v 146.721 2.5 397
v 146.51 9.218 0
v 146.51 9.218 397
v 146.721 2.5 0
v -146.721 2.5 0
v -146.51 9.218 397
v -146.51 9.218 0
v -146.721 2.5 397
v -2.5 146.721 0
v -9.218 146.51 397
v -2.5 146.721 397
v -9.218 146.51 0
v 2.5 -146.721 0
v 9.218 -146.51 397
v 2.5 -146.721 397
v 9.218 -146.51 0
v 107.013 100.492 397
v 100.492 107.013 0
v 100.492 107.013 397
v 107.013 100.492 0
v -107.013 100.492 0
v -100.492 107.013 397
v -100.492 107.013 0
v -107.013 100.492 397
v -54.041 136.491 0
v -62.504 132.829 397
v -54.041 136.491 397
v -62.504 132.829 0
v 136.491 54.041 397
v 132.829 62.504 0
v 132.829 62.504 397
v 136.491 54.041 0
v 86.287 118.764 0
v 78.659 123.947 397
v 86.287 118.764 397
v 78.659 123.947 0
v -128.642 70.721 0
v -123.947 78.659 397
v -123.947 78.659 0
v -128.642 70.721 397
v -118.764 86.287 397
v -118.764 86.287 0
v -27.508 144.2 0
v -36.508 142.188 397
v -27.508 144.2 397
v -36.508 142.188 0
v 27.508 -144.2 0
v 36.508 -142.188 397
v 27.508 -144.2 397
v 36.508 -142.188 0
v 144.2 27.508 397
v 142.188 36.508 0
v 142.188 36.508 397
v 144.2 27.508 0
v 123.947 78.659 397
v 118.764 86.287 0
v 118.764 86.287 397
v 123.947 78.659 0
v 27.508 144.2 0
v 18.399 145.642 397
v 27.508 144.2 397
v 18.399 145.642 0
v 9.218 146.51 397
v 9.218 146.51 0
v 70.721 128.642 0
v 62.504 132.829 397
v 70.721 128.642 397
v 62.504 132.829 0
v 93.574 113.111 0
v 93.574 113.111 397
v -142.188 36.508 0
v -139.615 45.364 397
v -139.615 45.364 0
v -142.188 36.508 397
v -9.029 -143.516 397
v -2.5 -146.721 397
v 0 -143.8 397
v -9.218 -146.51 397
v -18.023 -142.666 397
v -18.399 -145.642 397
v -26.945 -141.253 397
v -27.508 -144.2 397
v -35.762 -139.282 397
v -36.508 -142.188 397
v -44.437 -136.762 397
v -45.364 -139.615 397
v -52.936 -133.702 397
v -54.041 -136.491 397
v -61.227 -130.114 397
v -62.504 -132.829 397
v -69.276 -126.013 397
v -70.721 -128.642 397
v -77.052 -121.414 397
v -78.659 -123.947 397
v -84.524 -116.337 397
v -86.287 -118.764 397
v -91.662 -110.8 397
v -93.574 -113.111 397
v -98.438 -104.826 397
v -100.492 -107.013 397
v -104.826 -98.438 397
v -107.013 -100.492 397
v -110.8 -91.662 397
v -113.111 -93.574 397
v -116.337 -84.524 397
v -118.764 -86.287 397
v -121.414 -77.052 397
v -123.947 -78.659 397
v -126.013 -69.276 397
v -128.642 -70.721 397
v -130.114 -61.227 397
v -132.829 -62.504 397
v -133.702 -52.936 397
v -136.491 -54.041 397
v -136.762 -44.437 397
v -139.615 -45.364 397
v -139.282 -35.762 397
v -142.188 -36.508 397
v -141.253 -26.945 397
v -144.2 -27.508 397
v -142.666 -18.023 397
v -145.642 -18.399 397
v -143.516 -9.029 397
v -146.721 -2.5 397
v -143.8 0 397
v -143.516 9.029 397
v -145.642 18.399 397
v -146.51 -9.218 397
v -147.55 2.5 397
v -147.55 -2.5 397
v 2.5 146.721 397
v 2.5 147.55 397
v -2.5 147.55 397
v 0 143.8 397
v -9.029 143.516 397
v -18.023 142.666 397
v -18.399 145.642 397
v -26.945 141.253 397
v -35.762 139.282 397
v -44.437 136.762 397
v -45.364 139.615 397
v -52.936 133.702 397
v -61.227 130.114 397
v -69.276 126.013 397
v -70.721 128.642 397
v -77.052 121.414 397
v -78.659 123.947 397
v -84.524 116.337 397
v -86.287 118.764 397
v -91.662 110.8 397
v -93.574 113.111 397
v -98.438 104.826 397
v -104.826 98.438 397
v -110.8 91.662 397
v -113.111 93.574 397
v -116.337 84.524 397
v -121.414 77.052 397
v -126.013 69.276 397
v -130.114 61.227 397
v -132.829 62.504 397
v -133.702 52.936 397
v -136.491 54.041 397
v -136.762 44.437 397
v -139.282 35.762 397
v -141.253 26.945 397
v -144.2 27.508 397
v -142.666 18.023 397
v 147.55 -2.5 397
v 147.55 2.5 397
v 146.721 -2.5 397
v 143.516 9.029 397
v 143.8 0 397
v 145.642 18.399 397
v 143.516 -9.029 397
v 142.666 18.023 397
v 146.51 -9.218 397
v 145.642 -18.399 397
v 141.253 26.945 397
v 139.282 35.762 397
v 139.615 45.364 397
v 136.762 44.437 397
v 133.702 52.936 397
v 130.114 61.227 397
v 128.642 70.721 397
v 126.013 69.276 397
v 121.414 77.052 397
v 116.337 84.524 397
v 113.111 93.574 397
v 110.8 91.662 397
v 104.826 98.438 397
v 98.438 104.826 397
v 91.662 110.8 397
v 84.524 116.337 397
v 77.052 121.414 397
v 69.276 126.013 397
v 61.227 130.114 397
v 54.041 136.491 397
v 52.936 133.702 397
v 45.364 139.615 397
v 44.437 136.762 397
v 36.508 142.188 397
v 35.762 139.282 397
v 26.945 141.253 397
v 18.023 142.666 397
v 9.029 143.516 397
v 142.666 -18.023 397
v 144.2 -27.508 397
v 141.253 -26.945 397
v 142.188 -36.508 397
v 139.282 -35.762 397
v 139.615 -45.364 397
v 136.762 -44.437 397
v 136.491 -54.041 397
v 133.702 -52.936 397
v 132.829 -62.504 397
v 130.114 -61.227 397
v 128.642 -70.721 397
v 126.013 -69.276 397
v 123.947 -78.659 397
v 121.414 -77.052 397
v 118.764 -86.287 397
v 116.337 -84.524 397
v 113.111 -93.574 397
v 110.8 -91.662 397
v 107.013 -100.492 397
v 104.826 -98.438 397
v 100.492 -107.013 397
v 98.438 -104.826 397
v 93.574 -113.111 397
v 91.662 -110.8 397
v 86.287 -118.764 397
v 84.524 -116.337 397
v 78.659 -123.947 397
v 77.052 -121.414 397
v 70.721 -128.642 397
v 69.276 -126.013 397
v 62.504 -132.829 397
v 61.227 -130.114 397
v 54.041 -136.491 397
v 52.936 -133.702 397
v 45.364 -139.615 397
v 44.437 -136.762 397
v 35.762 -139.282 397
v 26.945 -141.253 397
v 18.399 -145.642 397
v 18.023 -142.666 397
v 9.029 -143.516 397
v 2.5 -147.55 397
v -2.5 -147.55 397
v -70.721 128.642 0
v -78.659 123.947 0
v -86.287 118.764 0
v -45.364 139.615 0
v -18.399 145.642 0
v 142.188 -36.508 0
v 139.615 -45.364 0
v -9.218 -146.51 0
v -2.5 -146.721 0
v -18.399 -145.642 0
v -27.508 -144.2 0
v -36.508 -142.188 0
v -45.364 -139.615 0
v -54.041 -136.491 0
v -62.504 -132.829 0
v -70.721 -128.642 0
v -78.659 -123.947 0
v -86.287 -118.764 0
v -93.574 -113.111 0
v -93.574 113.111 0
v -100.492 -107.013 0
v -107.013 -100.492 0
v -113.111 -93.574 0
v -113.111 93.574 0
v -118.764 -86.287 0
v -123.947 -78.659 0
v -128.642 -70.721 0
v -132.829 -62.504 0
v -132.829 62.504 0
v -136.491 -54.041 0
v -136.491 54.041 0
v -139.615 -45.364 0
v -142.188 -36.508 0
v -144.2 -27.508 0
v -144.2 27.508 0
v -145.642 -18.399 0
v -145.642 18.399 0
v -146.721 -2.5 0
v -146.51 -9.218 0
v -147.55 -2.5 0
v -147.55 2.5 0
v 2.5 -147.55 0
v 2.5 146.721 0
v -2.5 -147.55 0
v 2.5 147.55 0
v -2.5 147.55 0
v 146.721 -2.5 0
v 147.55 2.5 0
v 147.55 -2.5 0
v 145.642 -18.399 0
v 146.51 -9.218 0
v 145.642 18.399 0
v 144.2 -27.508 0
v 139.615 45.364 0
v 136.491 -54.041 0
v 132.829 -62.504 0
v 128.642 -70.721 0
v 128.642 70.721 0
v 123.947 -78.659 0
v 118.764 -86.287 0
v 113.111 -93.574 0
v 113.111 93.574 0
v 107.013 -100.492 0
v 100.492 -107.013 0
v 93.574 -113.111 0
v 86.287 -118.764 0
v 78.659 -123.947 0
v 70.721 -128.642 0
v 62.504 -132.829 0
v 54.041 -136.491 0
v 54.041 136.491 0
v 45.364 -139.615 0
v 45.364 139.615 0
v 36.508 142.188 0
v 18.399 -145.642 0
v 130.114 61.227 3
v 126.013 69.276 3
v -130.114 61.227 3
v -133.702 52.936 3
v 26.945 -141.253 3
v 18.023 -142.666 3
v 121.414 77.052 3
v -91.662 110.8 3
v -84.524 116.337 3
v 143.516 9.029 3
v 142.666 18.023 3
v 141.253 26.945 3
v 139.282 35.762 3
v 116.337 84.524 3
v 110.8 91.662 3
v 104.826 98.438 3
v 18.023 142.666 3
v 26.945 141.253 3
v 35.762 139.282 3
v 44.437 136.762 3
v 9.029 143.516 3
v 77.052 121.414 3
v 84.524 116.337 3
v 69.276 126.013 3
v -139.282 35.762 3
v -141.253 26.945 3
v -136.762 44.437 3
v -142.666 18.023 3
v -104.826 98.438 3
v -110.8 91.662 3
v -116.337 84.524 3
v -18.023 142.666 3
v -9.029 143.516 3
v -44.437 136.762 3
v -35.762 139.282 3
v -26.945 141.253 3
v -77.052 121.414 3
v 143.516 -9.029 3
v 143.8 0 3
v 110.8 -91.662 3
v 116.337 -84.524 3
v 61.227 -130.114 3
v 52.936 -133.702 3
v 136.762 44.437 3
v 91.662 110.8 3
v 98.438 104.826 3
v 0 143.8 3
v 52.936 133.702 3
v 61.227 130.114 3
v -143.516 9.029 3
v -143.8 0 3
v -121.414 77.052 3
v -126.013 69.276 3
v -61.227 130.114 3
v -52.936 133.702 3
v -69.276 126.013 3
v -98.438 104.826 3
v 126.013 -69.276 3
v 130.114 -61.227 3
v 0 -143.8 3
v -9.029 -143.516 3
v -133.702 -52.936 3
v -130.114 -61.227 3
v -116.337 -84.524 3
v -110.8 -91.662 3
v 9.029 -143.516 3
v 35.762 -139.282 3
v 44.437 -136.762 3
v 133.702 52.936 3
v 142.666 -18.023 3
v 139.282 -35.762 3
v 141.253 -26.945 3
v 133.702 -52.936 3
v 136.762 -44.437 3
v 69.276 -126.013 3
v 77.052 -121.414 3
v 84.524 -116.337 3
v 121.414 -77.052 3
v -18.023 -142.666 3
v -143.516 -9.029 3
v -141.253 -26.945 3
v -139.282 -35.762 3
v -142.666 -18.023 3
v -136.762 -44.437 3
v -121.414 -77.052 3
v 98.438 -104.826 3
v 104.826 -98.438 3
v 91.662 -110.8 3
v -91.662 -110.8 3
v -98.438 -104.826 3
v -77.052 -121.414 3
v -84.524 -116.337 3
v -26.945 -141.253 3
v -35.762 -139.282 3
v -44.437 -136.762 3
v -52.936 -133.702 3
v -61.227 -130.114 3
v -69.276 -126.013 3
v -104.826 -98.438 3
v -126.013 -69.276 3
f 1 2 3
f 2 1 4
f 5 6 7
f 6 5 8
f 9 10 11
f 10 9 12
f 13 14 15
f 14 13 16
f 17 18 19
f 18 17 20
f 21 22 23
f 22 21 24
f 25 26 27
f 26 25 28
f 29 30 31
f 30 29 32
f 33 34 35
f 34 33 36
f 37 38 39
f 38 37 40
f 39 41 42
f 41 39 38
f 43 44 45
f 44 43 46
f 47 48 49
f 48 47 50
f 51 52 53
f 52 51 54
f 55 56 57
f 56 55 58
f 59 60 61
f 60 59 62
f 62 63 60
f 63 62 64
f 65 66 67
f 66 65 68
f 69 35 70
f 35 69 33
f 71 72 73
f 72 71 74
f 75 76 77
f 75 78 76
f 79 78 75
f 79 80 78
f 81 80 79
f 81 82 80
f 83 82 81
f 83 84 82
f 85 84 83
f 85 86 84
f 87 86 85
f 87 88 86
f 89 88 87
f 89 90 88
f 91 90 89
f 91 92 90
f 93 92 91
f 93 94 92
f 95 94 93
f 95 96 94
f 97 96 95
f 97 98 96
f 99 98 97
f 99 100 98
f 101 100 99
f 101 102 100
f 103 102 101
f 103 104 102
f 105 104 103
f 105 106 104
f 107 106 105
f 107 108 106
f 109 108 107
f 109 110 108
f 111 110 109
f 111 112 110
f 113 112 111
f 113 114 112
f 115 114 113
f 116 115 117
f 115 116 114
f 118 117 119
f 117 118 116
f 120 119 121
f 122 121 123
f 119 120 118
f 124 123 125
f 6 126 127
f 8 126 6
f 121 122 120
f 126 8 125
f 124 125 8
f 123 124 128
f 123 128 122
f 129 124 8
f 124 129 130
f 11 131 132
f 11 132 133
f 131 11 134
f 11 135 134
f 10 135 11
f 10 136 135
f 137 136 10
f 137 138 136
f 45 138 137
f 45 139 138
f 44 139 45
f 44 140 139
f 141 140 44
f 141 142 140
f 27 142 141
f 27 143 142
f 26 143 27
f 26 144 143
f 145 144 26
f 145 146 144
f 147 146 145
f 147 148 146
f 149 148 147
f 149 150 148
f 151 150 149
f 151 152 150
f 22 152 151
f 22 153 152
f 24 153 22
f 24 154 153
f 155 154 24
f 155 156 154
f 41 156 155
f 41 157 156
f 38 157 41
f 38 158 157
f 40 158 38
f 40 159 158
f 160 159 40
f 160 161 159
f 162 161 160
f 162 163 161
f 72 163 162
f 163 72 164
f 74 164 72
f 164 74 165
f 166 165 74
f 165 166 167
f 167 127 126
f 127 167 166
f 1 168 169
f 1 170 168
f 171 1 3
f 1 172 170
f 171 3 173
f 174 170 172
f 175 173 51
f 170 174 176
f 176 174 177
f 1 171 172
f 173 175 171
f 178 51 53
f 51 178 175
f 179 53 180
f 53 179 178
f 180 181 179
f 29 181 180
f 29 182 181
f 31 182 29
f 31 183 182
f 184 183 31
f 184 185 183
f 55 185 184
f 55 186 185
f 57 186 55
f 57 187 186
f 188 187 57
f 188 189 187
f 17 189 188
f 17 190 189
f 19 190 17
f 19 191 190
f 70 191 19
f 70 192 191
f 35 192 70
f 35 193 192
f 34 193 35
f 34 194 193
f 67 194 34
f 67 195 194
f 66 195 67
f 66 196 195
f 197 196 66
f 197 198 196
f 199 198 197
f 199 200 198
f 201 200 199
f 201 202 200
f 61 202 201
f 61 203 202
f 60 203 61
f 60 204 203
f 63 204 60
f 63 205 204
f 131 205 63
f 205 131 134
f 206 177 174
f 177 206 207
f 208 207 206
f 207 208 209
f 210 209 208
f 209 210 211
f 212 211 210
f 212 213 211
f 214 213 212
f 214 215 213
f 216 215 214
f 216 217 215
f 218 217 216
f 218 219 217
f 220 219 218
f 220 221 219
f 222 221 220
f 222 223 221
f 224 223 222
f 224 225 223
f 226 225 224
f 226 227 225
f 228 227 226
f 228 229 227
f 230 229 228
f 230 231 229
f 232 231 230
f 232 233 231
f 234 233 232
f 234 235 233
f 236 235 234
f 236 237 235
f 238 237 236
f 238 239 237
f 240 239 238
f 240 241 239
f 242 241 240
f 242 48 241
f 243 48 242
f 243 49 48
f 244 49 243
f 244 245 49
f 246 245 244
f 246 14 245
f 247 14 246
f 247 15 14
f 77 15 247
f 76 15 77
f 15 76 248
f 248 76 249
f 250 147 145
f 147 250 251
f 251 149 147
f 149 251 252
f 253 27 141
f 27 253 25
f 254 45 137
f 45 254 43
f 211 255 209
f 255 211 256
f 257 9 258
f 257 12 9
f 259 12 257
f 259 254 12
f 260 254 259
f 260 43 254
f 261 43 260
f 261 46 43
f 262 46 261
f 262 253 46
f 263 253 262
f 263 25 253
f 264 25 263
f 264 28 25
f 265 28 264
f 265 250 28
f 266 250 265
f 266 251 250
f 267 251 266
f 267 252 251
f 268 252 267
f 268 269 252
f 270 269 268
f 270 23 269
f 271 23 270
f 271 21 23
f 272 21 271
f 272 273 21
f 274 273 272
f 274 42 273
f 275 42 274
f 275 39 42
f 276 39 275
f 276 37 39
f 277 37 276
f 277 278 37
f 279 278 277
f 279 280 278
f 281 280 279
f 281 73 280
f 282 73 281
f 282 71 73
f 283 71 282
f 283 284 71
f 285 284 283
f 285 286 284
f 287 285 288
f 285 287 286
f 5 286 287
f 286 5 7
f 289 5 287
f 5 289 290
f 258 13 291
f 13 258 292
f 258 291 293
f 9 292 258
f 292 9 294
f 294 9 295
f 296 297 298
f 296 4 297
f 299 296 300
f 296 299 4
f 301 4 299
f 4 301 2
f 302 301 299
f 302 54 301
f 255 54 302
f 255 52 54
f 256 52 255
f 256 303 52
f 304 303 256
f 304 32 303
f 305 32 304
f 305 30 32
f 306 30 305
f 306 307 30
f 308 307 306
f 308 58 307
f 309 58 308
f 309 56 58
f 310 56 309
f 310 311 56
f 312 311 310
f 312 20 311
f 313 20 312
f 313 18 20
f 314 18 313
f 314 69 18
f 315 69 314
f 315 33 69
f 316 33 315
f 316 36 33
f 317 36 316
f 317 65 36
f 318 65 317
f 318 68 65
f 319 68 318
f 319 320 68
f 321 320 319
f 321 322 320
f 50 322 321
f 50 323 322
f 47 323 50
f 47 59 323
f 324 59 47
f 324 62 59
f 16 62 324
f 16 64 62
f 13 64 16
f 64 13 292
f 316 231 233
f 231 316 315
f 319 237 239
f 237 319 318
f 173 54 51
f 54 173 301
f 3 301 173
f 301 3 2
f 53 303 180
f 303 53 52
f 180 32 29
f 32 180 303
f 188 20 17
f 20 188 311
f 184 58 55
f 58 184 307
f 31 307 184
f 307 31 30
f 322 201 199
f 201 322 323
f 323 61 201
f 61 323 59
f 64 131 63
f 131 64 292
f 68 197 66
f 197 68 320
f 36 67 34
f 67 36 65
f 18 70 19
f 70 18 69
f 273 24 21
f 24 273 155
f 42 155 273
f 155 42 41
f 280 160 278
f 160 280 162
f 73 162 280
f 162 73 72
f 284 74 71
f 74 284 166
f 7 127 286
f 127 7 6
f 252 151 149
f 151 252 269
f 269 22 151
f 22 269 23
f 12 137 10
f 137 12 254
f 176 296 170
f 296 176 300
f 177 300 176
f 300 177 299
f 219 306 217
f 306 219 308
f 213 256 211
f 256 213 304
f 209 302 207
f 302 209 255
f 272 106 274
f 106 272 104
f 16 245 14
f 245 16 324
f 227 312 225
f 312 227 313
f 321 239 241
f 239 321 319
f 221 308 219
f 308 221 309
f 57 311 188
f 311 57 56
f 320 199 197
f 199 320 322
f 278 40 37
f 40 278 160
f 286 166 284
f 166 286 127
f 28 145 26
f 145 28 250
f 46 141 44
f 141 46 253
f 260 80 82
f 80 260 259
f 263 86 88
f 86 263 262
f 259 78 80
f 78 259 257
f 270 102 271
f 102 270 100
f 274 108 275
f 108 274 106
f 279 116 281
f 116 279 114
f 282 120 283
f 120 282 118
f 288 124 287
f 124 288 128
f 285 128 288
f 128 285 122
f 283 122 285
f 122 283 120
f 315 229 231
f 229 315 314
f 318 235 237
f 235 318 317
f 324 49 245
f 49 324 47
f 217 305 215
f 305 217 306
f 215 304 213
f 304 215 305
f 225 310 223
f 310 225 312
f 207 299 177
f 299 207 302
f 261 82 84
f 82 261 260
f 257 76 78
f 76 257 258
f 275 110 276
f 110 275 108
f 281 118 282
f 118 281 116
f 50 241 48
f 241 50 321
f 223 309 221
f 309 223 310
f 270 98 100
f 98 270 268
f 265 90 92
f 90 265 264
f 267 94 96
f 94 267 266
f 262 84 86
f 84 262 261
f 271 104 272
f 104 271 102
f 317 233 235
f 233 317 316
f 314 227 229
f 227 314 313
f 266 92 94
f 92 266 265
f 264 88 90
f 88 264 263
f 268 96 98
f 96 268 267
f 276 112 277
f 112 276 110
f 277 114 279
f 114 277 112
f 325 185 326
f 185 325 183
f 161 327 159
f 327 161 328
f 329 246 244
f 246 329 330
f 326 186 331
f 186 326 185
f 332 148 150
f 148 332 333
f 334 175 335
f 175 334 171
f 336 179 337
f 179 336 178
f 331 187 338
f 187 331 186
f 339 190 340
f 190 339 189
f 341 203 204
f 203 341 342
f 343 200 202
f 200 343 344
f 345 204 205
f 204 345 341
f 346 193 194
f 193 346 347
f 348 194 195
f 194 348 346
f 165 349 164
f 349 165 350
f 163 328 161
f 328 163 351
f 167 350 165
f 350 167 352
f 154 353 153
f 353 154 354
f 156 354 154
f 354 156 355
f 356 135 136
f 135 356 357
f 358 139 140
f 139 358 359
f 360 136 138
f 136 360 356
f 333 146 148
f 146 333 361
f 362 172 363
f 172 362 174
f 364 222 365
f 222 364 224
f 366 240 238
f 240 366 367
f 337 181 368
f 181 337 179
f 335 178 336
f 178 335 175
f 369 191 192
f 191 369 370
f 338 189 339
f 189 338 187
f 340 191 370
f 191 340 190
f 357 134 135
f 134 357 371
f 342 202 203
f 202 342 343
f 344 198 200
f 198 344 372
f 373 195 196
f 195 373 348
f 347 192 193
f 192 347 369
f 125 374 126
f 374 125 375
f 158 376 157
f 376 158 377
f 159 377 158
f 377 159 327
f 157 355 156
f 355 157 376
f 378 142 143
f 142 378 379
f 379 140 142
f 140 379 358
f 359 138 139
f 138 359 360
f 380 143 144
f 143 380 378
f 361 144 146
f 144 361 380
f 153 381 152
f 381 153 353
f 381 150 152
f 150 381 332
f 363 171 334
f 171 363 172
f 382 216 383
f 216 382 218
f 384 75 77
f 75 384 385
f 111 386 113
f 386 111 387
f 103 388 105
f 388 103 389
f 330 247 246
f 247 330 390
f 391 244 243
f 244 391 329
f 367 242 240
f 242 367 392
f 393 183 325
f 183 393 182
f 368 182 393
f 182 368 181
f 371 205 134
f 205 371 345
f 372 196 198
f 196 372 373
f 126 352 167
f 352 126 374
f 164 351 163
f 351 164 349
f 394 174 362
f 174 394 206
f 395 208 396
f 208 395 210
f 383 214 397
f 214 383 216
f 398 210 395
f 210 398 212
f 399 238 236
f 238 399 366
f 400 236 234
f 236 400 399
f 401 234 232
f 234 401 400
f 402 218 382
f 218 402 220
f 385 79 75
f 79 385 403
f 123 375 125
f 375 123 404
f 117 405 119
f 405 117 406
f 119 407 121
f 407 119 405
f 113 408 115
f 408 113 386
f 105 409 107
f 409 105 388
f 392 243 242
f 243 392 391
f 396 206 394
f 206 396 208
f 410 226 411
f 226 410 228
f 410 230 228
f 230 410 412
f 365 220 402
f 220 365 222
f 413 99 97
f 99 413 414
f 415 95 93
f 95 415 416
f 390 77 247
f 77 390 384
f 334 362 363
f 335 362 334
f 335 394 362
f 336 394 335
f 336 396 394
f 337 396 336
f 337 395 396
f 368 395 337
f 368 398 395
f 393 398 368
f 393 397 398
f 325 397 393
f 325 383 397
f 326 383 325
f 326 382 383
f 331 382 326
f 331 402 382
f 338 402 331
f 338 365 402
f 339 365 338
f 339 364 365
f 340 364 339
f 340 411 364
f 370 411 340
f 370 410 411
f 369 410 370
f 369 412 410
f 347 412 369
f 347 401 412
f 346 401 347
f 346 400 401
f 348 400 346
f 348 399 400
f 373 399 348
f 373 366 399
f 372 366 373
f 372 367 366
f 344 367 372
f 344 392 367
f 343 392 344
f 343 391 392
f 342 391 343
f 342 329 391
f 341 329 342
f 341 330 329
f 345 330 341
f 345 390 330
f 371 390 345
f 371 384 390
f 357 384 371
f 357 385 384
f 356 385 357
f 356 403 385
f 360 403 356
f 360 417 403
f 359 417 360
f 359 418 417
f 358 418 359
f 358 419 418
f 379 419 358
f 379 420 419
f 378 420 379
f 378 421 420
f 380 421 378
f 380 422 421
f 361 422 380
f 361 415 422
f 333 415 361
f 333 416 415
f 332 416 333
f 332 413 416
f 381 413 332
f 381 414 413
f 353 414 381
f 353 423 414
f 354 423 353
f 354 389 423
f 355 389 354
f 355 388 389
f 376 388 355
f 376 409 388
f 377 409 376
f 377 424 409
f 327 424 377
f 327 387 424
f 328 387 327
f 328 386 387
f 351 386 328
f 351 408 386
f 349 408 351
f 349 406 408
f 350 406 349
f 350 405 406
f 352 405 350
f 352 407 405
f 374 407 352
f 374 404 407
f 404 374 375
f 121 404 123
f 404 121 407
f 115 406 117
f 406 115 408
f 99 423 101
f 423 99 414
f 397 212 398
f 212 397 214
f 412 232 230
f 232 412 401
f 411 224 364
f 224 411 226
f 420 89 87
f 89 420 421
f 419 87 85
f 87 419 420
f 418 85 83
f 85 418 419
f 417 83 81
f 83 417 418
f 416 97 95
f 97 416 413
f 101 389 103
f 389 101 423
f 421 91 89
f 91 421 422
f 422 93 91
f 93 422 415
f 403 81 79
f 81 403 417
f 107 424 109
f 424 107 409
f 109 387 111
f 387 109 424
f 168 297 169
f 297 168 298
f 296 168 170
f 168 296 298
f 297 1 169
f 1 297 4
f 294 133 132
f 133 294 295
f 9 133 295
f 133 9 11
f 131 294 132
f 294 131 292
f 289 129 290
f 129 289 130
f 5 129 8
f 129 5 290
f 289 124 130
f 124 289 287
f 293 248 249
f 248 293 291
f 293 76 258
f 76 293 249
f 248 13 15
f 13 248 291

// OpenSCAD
// file: ../config/parameters.scad
// In-Ground Worm Bin - Parameters
// Shared parameters for all components

// Outer shell dimensions
outer_diameter = 300; // mm
outer_height = 400;   // mm
outer_wall_thickness = 3; // mm

// Tolerance between shells
tolerance = 0.2; // mm - adjust based on your printer's accuracy

// Ridge and channel dimensions
ridge_width = 5; // mm
ridge_depth = outer_wall_thickness / 2; // Half the depth of outer shell wall
ridge_count = 4; // Number of ridges/channels around the circumference

// Inner shell dimensions (calculated from outer dimensions and tolerance)
inner_diameter = outer_diameter - 2 * (outer_wall_thickness + tolerance);
inner_height = outer_height - outer_wall_thickness; // Remove tolerance to make tops flush 
// main file
// In-Ground Worm Bin - Inner Shell
// Parameters are imported from parameters.scad

include <../config/parameters.scad>;

// Create a single ridge
module ridge(height) {
    translate([inner_diameter/2, 0, height/2])
        cube([ridge_depth, ridge_width, height], center=true);
}

// Render the inner shell with ridges
module inner_shell() {
    union() {
        difference() {
            cylinder(h = inner_height, d = inner_diameter, center = false, $fn=100);
            translate([0, 0, outer_wall_thickness])  // Leave bottom wall thickness
                cylinder(h = inner_height, d = inner_diameter - 2 * outer_wall_thickness, center = false, $fn=100);
        }
        
        // Add ridges
        for (i = [0:ridge_count-1]) {
            angle = i * 360 / ridge_count;
            rotate([0, 0, angle])
                ridge(inner_height);
        }
    }
}

// Always render the inner shell when this file is processed directly
inner_shell(); 
